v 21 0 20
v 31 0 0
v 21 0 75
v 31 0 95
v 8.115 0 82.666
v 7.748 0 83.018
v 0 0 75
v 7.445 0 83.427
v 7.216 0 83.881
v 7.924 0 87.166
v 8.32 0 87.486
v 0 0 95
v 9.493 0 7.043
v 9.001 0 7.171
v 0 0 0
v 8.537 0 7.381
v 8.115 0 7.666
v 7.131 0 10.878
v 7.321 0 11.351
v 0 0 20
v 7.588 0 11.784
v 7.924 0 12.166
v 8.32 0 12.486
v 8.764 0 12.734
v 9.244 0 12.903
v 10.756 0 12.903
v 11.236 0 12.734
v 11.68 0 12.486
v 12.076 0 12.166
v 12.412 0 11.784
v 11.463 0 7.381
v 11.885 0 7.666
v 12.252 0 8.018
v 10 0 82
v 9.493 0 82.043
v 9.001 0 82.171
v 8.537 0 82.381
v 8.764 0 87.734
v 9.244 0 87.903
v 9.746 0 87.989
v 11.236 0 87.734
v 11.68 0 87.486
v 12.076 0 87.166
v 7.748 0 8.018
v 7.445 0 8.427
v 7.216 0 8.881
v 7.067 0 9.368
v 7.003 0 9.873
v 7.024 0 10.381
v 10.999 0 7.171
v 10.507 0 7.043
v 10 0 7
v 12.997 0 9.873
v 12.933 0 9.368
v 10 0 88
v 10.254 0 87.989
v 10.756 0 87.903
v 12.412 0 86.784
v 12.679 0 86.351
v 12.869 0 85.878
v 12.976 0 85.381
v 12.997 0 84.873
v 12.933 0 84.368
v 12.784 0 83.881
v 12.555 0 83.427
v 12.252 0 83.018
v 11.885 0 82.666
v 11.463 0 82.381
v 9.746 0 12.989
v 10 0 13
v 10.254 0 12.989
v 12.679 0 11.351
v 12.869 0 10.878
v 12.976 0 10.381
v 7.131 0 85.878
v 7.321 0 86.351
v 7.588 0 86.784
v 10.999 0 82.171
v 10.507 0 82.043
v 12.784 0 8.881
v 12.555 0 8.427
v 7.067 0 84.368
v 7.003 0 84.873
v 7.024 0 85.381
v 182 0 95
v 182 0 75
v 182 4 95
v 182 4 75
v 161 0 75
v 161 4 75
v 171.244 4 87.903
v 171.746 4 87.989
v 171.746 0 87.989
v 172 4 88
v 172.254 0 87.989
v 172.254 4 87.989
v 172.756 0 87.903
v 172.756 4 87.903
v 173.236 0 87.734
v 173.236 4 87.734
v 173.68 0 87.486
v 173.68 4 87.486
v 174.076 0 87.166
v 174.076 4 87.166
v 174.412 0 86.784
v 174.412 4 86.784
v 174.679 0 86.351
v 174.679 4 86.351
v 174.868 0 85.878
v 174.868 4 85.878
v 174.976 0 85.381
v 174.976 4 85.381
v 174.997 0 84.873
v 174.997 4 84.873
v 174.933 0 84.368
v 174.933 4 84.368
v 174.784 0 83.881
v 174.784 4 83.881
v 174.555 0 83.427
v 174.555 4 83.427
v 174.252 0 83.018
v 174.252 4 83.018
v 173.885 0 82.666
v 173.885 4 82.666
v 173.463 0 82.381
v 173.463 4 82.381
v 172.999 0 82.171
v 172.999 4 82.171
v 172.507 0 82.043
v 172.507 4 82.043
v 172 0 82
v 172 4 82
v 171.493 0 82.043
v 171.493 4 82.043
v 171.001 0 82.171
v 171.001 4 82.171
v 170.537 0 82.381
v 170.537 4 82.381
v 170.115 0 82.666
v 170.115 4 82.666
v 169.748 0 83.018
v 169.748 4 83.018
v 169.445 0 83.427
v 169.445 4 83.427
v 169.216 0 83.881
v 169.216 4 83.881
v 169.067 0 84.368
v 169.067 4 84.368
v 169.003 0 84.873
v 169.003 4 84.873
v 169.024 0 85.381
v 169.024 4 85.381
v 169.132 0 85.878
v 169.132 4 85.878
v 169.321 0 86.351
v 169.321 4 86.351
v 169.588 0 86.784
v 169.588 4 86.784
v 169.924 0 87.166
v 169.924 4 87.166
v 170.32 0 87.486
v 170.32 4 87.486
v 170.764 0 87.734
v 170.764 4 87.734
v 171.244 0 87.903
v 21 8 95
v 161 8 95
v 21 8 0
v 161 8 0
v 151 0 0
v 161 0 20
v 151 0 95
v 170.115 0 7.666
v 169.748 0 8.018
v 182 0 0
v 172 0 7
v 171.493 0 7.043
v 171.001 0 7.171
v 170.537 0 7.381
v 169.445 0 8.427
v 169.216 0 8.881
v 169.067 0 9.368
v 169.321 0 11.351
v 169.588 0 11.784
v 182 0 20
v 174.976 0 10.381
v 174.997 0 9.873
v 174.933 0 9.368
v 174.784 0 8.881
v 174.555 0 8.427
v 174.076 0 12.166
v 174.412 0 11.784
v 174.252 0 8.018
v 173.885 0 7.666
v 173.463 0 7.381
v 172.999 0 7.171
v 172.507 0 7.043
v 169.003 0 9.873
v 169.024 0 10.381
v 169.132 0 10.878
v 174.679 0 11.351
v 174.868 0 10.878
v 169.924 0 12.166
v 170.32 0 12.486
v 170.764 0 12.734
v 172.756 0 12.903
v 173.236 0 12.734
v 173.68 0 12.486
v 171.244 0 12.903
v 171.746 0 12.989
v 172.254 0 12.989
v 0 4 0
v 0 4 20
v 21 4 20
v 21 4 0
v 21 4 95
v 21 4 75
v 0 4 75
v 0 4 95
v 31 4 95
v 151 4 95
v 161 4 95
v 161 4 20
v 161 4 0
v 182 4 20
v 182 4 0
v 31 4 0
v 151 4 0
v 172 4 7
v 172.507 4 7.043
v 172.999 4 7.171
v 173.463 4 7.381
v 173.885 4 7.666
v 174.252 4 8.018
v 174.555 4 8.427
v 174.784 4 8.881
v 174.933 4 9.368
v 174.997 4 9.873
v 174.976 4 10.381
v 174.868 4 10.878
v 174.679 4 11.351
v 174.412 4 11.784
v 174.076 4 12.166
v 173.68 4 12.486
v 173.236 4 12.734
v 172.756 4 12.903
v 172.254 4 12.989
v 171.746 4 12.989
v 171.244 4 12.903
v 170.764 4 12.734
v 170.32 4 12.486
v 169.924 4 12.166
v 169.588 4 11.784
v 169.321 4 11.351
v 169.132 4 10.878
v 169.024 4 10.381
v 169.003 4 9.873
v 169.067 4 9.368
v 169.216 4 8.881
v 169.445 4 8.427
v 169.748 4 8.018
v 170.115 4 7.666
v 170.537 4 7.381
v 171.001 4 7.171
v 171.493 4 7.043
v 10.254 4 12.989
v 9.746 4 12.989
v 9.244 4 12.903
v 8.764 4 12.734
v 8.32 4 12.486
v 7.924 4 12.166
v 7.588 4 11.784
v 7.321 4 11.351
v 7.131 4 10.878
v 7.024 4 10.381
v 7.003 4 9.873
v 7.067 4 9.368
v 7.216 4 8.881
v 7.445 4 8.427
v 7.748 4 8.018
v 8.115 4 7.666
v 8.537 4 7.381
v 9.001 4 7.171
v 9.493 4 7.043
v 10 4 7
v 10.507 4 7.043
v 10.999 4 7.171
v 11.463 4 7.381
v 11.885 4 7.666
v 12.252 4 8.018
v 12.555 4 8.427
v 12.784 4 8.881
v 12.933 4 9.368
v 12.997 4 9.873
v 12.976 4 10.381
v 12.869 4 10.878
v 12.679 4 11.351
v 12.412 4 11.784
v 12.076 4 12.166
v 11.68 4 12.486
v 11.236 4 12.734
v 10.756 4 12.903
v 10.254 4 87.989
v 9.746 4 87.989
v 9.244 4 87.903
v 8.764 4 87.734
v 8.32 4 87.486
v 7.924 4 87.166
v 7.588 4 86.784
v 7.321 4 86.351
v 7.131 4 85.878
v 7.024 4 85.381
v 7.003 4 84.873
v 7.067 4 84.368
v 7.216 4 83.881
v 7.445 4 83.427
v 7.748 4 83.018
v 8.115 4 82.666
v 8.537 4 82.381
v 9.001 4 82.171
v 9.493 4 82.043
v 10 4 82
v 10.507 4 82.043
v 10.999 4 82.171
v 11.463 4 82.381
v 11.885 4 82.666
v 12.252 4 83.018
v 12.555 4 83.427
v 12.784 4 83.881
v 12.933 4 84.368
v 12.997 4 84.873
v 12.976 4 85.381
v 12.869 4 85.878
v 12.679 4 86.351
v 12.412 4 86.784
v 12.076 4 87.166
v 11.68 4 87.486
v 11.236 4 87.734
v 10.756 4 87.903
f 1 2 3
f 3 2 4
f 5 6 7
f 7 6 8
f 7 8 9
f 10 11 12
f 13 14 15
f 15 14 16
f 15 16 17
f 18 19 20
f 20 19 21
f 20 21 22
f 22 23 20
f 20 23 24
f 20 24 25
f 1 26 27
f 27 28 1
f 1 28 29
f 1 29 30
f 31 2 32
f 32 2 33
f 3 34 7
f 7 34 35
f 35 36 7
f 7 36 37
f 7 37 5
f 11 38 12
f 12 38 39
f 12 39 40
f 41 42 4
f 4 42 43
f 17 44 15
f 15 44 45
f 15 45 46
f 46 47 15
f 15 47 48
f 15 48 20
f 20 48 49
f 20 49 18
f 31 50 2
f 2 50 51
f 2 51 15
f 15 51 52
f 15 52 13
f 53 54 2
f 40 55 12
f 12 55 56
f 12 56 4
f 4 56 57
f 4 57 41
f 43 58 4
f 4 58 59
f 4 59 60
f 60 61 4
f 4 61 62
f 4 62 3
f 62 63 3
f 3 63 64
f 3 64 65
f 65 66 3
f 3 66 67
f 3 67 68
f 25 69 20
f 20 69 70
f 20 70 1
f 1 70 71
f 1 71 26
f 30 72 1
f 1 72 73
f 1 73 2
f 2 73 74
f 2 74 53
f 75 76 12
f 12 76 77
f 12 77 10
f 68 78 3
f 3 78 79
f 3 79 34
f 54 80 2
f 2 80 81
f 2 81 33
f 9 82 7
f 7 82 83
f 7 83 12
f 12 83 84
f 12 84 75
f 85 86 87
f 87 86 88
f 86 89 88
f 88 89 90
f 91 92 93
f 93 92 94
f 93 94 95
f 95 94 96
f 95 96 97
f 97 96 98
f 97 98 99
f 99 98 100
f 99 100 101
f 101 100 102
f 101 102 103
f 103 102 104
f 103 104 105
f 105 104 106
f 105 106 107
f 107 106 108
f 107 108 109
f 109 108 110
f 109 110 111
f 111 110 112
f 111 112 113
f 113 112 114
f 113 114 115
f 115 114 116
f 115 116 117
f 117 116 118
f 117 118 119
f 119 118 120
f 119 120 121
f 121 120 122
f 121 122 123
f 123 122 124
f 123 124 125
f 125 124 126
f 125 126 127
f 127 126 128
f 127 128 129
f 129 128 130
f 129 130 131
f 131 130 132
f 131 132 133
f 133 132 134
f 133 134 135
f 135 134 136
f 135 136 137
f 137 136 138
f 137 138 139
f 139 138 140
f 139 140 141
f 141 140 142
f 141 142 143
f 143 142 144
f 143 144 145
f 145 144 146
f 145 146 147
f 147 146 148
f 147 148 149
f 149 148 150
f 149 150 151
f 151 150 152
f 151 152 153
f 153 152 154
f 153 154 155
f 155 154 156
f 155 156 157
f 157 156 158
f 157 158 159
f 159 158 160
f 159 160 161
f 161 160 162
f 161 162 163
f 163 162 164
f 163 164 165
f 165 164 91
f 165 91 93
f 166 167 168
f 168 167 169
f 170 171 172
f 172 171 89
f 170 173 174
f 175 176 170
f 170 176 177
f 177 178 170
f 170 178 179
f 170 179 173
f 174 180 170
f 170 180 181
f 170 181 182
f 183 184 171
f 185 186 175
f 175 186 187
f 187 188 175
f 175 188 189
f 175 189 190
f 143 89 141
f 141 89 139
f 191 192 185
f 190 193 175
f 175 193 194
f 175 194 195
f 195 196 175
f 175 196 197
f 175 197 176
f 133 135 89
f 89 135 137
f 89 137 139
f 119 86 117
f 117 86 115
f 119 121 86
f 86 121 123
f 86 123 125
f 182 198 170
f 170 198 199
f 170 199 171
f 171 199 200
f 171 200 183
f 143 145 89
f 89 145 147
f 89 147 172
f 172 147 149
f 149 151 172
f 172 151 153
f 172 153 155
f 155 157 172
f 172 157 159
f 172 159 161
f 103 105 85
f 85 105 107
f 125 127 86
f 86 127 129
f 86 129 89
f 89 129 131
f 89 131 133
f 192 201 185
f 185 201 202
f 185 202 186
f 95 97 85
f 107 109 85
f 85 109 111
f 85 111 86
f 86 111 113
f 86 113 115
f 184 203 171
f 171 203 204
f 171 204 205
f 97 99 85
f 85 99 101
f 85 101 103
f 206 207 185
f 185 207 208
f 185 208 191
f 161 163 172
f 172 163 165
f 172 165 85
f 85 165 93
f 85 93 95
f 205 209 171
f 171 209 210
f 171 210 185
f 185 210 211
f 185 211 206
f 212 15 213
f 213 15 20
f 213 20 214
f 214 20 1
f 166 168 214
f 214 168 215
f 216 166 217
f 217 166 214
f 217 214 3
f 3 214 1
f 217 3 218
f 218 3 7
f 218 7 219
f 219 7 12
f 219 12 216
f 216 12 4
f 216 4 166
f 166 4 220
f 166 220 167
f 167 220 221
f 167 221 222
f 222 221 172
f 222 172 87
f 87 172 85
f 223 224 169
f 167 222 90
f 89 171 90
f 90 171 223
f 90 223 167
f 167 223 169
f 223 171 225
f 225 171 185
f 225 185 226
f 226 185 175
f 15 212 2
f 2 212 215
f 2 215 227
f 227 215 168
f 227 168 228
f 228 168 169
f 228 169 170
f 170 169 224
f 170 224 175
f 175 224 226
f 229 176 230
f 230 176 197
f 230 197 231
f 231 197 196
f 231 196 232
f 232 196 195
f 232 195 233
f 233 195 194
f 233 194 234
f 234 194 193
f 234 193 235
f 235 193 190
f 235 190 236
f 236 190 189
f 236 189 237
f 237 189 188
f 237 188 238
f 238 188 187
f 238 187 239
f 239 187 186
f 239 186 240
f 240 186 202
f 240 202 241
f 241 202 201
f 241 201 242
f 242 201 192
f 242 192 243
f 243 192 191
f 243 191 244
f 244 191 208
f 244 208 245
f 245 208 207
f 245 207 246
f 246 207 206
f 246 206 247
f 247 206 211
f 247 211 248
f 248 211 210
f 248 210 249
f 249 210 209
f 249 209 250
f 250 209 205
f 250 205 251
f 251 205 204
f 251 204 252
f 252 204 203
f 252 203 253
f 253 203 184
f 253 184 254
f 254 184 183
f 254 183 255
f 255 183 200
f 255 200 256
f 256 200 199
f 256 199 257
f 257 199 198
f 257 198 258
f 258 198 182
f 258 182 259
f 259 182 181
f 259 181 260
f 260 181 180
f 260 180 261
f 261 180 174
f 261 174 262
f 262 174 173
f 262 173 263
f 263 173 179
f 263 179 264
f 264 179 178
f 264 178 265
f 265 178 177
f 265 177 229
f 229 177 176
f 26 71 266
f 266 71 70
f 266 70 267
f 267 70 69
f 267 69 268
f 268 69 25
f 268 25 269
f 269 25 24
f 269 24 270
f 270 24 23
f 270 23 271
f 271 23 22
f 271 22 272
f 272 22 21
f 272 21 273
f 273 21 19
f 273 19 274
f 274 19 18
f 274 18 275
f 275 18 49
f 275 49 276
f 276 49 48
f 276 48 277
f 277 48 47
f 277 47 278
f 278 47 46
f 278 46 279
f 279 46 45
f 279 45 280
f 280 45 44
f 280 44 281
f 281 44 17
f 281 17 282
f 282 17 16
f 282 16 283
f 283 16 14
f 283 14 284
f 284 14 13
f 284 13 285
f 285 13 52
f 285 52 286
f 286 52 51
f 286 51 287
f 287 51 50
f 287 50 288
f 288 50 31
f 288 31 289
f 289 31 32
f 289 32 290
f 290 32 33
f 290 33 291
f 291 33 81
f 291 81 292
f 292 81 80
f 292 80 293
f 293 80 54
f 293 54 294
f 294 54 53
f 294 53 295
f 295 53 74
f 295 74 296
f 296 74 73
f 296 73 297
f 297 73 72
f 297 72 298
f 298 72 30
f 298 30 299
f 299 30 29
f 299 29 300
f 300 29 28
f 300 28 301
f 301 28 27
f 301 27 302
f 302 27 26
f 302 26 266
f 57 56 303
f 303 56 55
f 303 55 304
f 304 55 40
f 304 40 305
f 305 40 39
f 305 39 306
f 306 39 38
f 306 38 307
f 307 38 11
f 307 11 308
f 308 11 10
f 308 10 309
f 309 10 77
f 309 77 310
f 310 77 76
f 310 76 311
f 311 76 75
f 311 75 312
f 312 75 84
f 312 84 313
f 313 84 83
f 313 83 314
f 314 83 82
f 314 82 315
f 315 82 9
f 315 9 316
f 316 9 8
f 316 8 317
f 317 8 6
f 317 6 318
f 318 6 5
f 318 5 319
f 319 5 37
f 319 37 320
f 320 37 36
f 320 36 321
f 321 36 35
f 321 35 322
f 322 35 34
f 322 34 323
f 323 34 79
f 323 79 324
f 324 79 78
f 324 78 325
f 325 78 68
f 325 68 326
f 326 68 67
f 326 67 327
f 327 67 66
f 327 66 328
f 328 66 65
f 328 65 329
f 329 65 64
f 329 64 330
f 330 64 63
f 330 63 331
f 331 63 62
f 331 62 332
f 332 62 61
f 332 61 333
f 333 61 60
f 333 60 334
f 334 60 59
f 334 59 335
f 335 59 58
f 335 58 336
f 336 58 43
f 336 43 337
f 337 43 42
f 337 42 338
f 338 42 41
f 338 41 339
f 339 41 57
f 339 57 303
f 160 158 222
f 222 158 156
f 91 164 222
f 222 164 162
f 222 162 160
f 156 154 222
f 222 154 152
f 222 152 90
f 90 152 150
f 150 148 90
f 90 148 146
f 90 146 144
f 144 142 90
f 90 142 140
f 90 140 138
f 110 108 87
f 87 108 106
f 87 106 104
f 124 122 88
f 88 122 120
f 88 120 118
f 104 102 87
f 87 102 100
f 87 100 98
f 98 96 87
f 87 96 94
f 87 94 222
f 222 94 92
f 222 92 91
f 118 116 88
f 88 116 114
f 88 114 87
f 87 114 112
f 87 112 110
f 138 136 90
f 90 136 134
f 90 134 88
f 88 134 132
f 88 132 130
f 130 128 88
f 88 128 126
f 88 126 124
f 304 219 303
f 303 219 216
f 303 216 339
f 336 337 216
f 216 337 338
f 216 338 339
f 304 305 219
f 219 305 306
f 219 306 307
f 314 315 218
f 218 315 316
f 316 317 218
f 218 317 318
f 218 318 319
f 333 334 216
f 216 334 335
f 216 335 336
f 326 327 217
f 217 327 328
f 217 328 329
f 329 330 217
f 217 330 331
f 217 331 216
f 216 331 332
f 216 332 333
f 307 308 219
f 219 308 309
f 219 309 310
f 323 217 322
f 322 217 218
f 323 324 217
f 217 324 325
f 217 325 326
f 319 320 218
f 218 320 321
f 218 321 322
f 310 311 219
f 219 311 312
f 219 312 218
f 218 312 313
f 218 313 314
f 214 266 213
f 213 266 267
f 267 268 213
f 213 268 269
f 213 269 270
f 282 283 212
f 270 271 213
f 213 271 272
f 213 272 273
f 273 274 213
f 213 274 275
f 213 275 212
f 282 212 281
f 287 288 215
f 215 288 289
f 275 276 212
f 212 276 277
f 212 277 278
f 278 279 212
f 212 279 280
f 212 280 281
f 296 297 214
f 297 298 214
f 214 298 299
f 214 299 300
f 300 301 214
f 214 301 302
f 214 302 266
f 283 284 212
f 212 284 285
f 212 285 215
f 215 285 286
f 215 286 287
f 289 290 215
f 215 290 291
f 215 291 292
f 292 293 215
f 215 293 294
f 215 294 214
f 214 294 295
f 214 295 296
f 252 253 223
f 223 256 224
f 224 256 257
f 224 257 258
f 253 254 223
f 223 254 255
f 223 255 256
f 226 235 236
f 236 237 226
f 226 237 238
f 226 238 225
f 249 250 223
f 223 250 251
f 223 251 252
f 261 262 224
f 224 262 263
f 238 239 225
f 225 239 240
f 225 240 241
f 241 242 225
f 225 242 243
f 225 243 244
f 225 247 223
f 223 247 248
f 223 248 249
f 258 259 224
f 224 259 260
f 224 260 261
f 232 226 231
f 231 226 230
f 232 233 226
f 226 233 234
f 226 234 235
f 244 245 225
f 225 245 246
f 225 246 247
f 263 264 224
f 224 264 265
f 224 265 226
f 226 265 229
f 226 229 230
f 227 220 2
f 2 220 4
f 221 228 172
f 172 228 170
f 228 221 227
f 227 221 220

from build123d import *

# Parameters (mm, degrees)
SKETCH1_R           = 3
BOSS_EXTRUDE1_DEPTH = 8
SKETCH2_W           = 21
SKETCH2_H           = 20
CUT_EXTRUDE1_DEPTH  = 4
SKETCH3_W           = 120
SKETCH3_H           = 95
CUT_EXTRUDE2_DEPTH  = 4


with BuildPart() as part:
    # Sketch1 → Boss-Extrude1 (new body)
    with BuildSketch(Plane(origin=(0, 0, 0), x_dir=(1, 0, 0), z_dir=(0, 1, 0))):
        Polygon((0, 0), (21, 0), (161, 0), (182, 0), (182, -20), (161, -20), (161, -75), (182, -75), (182, -95), (0, -95), (0, -75), (21, -75), (21, -20), (0, -20), align=None)
        with Locations(Location((10, -10, 0), (0, 0, 270))):
            Circle(SKETCH1_R, mode=Mode.SUBTRACT)
        with Locations(Location((10, -85, 0), (0, 0, 270))):
            Circle(SKETCH1_R, mode=Mode.SUBTRACT)
        with Locations(Location((172, -10, 0), (0, 0, 90))):
            Circle(SKETCH1_R, mode=Mode.SUBTRACT)
        with Locations(Location((172, -85, 0), (0, 0, 90))):
            Circle(SKETCH1_R, mode=Mode.SUBTRACT)
    extrude(amount=BOSS_EXTRUDE1_DEPTH)

    # Sketch2 → Cut-Extrude1 (cut)
    with BuildSketch(Plane(origin=(0, 8, 0), x_dir=(1, 0, 0), z_dir=(0, 1, 0))):
        with Locations((10.5, -85)):
            Rectangle(SKETCH2_W, SKETCH2_H)
        with Locations((10.5, -10)):
            Rectangle(SKETCH2_W, SKETCH2_H)
        with Locations((171.5, -85)):
            Rectangle(SKETCH2_W, SKETCH2_H)
        with Locations((171.5, -10)):
            Rectangle(SKETCH2_W, SKETCH2_H)
    extrude(amount=-CUT_EXTRUDE1_DEPTH, mode=Mode.SUBTRACT)

    # Sketch3 → Cut-Extrude2 (cut)
    with BuildSketch(Plane.XZ):
        with Locations((91, 47.5)):
            Rectangle(SKETCH3_W, SKETCH3_H)
    extrude(amount=-CUT_EXTRUDE2_DEPTH, mode=Mode.SUBTRACT)


solid = part.part
